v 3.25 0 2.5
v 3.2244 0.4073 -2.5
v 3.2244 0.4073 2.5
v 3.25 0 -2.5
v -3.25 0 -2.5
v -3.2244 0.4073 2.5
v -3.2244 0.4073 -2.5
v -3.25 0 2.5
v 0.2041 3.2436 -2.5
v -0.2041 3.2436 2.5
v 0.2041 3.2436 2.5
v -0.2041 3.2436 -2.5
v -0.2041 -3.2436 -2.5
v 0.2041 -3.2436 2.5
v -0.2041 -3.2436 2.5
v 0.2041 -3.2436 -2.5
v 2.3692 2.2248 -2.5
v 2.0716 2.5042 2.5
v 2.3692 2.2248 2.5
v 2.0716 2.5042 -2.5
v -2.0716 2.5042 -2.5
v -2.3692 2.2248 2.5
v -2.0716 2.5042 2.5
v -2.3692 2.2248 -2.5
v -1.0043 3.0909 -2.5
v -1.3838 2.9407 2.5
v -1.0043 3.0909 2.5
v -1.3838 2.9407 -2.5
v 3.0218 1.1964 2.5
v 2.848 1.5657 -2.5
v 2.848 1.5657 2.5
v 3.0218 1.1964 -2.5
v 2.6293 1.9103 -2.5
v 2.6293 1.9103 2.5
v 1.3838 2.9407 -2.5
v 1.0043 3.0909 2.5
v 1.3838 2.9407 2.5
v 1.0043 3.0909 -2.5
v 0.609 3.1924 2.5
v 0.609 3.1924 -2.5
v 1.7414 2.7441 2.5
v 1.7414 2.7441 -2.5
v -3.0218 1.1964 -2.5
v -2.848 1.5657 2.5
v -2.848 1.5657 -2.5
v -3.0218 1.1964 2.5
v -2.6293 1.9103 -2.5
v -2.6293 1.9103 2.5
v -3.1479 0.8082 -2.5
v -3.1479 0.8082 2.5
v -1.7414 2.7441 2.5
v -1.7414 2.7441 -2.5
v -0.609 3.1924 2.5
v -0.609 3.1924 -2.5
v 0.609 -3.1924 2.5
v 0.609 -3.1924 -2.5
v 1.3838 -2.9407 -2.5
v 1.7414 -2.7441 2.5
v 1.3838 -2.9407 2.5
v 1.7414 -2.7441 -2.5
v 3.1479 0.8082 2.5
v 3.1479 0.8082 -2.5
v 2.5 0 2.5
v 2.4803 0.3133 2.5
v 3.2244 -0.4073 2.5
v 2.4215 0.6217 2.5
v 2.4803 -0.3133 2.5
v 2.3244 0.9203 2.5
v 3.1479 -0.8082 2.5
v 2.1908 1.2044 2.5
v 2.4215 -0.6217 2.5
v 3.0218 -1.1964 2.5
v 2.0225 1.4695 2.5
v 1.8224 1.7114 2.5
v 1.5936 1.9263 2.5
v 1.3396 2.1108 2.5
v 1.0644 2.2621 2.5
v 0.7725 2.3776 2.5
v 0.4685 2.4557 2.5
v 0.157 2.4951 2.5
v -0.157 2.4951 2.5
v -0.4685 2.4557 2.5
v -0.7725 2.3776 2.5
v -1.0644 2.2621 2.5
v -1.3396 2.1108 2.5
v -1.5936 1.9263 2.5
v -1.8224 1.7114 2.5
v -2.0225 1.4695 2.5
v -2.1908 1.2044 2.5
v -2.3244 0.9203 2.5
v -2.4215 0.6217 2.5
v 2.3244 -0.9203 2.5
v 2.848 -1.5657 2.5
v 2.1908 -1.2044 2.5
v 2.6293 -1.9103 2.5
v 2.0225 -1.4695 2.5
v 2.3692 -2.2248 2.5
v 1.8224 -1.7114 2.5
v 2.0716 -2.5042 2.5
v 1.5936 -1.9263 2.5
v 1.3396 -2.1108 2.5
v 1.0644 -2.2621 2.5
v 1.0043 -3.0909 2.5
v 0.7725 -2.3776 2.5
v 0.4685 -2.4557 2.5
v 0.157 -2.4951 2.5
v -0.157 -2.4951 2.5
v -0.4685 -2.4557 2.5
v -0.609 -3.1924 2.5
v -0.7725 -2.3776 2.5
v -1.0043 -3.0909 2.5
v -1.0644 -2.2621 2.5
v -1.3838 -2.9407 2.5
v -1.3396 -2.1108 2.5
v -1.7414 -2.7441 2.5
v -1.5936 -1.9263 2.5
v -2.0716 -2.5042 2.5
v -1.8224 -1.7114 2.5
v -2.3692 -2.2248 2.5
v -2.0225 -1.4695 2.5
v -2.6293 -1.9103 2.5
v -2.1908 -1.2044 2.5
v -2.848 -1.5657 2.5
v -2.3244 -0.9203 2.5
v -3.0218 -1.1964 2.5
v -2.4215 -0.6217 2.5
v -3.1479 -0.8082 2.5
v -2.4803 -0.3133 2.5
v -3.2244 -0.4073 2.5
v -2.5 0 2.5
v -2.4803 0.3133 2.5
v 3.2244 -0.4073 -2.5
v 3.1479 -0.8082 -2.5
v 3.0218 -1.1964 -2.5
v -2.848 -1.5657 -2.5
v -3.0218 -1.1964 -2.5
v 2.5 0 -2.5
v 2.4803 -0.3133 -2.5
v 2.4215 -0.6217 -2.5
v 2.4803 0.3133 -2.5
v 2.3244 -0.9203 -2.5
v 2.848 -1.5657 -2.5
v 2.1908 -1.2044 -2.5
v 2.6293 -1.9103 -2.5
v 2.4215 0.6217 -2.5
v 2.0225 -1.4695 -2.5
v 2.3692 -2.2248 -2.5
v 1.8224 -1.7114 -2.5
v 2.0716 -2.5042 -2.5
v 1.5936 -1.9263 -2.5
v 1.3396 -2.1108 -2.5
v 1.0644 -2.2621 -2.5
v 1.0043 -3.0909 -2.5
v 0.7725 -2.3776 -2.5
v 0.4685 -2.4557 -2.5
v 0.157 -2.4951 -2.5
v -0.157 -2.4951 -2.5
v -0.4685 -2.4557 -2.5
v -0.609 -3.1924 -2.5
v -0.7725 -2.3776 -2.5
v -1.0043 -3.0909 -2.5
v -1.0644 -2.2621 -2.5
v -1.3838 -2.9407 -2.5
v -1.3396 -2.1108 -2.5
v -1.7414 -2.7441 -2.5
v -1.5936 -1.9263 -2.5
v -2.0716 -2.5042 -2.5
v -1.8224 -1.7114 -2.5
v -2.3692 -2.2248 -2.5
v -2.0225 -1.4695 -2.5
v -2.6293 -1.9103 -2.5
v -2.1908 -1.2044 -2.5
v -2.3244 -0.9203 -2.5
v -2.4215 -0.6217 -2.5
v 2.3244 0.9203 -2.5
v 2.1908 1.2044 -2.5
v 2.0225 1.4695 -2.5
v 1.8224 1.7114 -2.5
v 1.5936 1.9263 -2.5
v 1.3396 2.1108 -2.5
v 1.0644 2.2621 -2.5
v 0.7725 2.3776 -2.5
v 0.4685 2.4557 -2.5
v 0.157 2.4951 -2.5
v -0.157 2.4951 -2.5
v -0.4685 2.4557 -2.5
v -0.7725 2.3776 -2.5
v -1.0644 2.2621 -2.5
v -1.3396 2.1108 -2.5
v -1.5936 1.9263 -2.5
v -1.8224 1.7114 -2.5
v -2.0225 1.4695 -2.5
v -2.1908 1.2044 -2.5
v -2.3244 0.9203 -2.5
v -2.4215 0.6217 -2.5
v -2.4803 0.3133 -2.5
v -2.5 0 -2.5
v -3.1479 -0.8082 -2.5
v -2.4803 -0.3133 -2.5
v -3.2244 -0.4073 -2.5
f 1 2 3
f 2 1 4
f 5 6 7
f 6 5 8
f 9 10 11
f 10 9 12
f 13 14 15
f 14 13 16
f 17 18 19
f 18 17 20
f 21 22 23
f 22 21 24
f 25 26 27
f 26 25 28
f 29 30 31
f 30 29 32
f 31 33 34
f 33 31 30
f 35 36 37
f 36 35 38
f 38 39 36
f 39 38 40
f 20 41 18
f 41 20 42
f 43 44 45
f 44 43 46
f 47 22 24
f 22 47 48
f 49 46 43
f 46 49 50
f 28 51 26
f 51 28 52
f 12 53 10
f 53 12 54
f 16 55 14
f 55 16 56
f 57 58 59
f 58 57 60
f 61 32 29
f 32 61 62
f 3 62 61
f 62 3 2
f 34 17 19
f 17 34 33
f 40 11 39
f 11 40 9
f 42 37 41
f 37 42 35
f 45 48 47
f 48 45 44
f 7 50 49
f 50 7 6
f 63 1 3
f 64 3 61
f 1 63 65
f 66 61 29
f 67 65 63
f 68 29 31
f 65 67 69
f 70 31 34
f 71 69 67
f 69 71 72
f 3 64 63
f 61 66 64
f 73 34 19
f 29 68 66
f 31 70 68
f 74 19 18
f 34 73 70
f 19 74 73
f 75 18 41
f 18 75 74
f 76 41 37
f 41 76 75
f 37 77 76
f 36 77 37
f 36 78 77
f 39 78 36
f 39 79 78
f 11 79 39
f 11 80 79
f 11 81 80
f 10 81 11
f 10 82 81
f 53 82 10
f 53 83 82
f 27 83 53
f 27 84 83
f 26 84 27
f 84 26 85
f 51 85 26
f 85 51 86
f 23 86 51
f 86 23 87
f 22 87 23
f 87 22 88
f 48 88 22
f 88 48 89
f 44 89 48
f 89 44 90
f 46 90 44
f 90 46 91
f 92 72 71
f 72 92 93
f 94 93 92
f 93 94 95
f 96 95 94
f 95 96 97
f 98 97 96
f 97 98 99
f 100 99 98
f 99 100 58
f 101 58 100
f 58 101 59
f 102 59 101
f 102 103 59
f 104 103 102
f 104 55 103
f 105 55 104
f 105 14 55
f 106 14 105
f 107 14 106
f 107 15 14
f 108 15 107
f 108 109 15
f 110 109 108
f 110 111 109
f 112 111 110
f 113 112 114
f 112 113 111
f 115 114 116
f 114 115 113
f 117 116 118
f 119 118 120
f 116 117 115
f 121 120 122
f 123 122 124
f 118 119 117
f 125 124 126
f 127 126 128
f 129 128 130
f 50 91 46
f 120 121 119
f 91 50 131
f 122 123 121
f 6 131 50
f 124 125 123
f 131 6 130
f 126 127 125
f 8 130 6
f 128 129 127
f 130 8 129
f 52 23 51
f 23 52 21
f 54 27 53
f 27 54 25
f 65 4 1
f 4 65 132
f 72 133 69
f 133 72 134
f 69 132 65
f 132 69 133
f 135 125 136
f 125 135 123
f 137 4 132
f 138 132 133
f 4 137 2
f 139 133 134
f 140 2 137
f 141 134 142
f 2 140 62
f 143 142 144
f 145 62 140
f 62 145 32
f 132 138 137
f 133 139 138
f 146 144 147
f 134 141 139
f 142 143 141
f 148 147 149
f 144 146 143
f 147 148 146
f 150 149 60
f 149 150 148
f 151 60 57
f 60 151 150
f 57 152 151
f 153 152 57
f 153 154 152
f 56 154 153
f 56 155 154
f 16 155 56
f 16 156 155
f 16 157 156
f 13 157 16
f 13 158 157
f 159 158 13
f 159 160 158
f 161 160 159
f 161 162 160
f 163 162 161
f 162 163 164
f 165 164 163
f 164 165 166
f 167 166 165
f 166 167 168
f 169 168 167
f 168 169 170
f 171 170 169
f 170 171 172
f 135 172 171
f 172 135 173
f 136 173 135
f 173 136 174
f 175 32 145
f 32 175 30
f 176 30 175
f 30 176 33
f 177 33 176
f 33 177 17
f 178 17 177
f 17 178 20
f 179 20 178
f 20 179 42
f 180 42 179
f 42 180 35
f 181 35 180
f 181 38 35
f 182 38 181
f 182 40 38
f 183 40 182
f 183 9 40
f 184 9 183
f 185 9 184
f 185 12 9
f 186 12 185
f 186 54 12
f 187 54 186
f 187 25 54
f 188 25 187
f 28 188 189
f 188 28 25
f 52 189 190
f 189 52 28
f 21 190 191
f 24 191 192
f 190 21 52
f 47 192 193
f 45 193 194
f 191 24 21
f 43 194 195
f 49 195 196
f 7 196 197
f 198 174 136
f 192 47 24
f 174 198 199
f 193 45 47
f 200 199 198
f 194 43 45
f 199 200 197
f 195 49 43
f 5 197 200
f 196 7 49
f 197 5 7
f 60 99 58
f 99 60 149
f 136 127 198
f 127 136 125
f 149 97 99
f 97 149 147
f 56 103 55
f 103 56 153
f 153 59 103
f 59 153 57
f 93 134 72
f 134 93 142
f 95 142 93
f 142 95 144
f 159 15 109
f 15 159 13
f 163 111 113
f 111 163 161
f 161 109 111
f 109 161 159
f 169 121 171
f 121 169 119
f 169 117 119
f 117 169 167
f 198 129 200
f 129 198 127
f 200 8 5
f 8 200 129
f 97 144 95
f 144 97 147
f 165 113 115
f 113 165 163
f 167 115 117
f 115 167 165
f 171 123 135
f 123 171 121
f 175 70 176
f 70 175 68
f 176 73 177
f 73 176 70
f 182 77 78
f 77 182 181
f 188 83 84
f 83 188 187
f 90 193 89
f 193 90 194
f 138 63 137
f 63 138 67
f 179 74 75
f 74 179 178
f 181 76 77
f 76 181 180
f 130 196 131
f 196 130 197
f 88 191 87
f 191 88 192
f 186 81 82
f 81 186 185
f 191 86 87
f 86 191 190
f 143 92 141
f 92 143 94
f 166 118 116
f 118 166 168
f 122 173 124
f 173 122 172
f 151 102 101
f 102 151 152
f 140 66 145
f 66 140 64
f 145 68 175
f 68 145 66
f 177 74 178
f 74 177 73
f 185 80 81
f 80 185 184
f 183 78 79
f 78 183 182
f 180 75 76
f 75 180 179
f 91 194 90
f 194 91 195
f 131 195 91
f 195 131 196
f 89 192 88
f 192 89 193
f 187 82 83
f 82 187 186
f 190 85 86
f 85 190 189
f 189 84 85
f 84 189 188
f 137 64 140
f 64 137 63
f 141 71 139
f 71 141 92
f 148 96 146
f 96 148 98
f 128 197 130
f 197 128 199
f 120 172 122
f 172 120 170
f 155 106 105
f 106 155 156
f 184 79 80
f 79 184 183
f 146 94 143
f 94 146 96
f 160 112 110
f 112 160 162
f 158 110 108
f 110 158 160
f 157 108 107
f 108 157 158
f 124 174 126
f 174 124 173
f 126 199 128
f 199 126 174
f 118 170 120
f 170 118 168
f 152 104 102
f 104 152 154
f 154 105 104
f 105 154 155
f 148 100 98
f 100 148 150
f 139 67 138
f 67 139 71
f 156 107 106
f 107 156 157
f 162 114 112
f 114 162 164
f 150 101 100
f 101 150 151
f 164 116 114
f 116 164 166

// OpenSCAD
$fn = 50;


difference() {
	union() {
		translate(v = [0, 0, -2.5000000000]) {
			cylinder(h = 5, r = 3.2500000000);
		}
	}
	union() {
		translate(v = [0, 0, -100.0000000000]) {
			cylinder(h = 200, r = 2.5000000000);
		}
	}
}
